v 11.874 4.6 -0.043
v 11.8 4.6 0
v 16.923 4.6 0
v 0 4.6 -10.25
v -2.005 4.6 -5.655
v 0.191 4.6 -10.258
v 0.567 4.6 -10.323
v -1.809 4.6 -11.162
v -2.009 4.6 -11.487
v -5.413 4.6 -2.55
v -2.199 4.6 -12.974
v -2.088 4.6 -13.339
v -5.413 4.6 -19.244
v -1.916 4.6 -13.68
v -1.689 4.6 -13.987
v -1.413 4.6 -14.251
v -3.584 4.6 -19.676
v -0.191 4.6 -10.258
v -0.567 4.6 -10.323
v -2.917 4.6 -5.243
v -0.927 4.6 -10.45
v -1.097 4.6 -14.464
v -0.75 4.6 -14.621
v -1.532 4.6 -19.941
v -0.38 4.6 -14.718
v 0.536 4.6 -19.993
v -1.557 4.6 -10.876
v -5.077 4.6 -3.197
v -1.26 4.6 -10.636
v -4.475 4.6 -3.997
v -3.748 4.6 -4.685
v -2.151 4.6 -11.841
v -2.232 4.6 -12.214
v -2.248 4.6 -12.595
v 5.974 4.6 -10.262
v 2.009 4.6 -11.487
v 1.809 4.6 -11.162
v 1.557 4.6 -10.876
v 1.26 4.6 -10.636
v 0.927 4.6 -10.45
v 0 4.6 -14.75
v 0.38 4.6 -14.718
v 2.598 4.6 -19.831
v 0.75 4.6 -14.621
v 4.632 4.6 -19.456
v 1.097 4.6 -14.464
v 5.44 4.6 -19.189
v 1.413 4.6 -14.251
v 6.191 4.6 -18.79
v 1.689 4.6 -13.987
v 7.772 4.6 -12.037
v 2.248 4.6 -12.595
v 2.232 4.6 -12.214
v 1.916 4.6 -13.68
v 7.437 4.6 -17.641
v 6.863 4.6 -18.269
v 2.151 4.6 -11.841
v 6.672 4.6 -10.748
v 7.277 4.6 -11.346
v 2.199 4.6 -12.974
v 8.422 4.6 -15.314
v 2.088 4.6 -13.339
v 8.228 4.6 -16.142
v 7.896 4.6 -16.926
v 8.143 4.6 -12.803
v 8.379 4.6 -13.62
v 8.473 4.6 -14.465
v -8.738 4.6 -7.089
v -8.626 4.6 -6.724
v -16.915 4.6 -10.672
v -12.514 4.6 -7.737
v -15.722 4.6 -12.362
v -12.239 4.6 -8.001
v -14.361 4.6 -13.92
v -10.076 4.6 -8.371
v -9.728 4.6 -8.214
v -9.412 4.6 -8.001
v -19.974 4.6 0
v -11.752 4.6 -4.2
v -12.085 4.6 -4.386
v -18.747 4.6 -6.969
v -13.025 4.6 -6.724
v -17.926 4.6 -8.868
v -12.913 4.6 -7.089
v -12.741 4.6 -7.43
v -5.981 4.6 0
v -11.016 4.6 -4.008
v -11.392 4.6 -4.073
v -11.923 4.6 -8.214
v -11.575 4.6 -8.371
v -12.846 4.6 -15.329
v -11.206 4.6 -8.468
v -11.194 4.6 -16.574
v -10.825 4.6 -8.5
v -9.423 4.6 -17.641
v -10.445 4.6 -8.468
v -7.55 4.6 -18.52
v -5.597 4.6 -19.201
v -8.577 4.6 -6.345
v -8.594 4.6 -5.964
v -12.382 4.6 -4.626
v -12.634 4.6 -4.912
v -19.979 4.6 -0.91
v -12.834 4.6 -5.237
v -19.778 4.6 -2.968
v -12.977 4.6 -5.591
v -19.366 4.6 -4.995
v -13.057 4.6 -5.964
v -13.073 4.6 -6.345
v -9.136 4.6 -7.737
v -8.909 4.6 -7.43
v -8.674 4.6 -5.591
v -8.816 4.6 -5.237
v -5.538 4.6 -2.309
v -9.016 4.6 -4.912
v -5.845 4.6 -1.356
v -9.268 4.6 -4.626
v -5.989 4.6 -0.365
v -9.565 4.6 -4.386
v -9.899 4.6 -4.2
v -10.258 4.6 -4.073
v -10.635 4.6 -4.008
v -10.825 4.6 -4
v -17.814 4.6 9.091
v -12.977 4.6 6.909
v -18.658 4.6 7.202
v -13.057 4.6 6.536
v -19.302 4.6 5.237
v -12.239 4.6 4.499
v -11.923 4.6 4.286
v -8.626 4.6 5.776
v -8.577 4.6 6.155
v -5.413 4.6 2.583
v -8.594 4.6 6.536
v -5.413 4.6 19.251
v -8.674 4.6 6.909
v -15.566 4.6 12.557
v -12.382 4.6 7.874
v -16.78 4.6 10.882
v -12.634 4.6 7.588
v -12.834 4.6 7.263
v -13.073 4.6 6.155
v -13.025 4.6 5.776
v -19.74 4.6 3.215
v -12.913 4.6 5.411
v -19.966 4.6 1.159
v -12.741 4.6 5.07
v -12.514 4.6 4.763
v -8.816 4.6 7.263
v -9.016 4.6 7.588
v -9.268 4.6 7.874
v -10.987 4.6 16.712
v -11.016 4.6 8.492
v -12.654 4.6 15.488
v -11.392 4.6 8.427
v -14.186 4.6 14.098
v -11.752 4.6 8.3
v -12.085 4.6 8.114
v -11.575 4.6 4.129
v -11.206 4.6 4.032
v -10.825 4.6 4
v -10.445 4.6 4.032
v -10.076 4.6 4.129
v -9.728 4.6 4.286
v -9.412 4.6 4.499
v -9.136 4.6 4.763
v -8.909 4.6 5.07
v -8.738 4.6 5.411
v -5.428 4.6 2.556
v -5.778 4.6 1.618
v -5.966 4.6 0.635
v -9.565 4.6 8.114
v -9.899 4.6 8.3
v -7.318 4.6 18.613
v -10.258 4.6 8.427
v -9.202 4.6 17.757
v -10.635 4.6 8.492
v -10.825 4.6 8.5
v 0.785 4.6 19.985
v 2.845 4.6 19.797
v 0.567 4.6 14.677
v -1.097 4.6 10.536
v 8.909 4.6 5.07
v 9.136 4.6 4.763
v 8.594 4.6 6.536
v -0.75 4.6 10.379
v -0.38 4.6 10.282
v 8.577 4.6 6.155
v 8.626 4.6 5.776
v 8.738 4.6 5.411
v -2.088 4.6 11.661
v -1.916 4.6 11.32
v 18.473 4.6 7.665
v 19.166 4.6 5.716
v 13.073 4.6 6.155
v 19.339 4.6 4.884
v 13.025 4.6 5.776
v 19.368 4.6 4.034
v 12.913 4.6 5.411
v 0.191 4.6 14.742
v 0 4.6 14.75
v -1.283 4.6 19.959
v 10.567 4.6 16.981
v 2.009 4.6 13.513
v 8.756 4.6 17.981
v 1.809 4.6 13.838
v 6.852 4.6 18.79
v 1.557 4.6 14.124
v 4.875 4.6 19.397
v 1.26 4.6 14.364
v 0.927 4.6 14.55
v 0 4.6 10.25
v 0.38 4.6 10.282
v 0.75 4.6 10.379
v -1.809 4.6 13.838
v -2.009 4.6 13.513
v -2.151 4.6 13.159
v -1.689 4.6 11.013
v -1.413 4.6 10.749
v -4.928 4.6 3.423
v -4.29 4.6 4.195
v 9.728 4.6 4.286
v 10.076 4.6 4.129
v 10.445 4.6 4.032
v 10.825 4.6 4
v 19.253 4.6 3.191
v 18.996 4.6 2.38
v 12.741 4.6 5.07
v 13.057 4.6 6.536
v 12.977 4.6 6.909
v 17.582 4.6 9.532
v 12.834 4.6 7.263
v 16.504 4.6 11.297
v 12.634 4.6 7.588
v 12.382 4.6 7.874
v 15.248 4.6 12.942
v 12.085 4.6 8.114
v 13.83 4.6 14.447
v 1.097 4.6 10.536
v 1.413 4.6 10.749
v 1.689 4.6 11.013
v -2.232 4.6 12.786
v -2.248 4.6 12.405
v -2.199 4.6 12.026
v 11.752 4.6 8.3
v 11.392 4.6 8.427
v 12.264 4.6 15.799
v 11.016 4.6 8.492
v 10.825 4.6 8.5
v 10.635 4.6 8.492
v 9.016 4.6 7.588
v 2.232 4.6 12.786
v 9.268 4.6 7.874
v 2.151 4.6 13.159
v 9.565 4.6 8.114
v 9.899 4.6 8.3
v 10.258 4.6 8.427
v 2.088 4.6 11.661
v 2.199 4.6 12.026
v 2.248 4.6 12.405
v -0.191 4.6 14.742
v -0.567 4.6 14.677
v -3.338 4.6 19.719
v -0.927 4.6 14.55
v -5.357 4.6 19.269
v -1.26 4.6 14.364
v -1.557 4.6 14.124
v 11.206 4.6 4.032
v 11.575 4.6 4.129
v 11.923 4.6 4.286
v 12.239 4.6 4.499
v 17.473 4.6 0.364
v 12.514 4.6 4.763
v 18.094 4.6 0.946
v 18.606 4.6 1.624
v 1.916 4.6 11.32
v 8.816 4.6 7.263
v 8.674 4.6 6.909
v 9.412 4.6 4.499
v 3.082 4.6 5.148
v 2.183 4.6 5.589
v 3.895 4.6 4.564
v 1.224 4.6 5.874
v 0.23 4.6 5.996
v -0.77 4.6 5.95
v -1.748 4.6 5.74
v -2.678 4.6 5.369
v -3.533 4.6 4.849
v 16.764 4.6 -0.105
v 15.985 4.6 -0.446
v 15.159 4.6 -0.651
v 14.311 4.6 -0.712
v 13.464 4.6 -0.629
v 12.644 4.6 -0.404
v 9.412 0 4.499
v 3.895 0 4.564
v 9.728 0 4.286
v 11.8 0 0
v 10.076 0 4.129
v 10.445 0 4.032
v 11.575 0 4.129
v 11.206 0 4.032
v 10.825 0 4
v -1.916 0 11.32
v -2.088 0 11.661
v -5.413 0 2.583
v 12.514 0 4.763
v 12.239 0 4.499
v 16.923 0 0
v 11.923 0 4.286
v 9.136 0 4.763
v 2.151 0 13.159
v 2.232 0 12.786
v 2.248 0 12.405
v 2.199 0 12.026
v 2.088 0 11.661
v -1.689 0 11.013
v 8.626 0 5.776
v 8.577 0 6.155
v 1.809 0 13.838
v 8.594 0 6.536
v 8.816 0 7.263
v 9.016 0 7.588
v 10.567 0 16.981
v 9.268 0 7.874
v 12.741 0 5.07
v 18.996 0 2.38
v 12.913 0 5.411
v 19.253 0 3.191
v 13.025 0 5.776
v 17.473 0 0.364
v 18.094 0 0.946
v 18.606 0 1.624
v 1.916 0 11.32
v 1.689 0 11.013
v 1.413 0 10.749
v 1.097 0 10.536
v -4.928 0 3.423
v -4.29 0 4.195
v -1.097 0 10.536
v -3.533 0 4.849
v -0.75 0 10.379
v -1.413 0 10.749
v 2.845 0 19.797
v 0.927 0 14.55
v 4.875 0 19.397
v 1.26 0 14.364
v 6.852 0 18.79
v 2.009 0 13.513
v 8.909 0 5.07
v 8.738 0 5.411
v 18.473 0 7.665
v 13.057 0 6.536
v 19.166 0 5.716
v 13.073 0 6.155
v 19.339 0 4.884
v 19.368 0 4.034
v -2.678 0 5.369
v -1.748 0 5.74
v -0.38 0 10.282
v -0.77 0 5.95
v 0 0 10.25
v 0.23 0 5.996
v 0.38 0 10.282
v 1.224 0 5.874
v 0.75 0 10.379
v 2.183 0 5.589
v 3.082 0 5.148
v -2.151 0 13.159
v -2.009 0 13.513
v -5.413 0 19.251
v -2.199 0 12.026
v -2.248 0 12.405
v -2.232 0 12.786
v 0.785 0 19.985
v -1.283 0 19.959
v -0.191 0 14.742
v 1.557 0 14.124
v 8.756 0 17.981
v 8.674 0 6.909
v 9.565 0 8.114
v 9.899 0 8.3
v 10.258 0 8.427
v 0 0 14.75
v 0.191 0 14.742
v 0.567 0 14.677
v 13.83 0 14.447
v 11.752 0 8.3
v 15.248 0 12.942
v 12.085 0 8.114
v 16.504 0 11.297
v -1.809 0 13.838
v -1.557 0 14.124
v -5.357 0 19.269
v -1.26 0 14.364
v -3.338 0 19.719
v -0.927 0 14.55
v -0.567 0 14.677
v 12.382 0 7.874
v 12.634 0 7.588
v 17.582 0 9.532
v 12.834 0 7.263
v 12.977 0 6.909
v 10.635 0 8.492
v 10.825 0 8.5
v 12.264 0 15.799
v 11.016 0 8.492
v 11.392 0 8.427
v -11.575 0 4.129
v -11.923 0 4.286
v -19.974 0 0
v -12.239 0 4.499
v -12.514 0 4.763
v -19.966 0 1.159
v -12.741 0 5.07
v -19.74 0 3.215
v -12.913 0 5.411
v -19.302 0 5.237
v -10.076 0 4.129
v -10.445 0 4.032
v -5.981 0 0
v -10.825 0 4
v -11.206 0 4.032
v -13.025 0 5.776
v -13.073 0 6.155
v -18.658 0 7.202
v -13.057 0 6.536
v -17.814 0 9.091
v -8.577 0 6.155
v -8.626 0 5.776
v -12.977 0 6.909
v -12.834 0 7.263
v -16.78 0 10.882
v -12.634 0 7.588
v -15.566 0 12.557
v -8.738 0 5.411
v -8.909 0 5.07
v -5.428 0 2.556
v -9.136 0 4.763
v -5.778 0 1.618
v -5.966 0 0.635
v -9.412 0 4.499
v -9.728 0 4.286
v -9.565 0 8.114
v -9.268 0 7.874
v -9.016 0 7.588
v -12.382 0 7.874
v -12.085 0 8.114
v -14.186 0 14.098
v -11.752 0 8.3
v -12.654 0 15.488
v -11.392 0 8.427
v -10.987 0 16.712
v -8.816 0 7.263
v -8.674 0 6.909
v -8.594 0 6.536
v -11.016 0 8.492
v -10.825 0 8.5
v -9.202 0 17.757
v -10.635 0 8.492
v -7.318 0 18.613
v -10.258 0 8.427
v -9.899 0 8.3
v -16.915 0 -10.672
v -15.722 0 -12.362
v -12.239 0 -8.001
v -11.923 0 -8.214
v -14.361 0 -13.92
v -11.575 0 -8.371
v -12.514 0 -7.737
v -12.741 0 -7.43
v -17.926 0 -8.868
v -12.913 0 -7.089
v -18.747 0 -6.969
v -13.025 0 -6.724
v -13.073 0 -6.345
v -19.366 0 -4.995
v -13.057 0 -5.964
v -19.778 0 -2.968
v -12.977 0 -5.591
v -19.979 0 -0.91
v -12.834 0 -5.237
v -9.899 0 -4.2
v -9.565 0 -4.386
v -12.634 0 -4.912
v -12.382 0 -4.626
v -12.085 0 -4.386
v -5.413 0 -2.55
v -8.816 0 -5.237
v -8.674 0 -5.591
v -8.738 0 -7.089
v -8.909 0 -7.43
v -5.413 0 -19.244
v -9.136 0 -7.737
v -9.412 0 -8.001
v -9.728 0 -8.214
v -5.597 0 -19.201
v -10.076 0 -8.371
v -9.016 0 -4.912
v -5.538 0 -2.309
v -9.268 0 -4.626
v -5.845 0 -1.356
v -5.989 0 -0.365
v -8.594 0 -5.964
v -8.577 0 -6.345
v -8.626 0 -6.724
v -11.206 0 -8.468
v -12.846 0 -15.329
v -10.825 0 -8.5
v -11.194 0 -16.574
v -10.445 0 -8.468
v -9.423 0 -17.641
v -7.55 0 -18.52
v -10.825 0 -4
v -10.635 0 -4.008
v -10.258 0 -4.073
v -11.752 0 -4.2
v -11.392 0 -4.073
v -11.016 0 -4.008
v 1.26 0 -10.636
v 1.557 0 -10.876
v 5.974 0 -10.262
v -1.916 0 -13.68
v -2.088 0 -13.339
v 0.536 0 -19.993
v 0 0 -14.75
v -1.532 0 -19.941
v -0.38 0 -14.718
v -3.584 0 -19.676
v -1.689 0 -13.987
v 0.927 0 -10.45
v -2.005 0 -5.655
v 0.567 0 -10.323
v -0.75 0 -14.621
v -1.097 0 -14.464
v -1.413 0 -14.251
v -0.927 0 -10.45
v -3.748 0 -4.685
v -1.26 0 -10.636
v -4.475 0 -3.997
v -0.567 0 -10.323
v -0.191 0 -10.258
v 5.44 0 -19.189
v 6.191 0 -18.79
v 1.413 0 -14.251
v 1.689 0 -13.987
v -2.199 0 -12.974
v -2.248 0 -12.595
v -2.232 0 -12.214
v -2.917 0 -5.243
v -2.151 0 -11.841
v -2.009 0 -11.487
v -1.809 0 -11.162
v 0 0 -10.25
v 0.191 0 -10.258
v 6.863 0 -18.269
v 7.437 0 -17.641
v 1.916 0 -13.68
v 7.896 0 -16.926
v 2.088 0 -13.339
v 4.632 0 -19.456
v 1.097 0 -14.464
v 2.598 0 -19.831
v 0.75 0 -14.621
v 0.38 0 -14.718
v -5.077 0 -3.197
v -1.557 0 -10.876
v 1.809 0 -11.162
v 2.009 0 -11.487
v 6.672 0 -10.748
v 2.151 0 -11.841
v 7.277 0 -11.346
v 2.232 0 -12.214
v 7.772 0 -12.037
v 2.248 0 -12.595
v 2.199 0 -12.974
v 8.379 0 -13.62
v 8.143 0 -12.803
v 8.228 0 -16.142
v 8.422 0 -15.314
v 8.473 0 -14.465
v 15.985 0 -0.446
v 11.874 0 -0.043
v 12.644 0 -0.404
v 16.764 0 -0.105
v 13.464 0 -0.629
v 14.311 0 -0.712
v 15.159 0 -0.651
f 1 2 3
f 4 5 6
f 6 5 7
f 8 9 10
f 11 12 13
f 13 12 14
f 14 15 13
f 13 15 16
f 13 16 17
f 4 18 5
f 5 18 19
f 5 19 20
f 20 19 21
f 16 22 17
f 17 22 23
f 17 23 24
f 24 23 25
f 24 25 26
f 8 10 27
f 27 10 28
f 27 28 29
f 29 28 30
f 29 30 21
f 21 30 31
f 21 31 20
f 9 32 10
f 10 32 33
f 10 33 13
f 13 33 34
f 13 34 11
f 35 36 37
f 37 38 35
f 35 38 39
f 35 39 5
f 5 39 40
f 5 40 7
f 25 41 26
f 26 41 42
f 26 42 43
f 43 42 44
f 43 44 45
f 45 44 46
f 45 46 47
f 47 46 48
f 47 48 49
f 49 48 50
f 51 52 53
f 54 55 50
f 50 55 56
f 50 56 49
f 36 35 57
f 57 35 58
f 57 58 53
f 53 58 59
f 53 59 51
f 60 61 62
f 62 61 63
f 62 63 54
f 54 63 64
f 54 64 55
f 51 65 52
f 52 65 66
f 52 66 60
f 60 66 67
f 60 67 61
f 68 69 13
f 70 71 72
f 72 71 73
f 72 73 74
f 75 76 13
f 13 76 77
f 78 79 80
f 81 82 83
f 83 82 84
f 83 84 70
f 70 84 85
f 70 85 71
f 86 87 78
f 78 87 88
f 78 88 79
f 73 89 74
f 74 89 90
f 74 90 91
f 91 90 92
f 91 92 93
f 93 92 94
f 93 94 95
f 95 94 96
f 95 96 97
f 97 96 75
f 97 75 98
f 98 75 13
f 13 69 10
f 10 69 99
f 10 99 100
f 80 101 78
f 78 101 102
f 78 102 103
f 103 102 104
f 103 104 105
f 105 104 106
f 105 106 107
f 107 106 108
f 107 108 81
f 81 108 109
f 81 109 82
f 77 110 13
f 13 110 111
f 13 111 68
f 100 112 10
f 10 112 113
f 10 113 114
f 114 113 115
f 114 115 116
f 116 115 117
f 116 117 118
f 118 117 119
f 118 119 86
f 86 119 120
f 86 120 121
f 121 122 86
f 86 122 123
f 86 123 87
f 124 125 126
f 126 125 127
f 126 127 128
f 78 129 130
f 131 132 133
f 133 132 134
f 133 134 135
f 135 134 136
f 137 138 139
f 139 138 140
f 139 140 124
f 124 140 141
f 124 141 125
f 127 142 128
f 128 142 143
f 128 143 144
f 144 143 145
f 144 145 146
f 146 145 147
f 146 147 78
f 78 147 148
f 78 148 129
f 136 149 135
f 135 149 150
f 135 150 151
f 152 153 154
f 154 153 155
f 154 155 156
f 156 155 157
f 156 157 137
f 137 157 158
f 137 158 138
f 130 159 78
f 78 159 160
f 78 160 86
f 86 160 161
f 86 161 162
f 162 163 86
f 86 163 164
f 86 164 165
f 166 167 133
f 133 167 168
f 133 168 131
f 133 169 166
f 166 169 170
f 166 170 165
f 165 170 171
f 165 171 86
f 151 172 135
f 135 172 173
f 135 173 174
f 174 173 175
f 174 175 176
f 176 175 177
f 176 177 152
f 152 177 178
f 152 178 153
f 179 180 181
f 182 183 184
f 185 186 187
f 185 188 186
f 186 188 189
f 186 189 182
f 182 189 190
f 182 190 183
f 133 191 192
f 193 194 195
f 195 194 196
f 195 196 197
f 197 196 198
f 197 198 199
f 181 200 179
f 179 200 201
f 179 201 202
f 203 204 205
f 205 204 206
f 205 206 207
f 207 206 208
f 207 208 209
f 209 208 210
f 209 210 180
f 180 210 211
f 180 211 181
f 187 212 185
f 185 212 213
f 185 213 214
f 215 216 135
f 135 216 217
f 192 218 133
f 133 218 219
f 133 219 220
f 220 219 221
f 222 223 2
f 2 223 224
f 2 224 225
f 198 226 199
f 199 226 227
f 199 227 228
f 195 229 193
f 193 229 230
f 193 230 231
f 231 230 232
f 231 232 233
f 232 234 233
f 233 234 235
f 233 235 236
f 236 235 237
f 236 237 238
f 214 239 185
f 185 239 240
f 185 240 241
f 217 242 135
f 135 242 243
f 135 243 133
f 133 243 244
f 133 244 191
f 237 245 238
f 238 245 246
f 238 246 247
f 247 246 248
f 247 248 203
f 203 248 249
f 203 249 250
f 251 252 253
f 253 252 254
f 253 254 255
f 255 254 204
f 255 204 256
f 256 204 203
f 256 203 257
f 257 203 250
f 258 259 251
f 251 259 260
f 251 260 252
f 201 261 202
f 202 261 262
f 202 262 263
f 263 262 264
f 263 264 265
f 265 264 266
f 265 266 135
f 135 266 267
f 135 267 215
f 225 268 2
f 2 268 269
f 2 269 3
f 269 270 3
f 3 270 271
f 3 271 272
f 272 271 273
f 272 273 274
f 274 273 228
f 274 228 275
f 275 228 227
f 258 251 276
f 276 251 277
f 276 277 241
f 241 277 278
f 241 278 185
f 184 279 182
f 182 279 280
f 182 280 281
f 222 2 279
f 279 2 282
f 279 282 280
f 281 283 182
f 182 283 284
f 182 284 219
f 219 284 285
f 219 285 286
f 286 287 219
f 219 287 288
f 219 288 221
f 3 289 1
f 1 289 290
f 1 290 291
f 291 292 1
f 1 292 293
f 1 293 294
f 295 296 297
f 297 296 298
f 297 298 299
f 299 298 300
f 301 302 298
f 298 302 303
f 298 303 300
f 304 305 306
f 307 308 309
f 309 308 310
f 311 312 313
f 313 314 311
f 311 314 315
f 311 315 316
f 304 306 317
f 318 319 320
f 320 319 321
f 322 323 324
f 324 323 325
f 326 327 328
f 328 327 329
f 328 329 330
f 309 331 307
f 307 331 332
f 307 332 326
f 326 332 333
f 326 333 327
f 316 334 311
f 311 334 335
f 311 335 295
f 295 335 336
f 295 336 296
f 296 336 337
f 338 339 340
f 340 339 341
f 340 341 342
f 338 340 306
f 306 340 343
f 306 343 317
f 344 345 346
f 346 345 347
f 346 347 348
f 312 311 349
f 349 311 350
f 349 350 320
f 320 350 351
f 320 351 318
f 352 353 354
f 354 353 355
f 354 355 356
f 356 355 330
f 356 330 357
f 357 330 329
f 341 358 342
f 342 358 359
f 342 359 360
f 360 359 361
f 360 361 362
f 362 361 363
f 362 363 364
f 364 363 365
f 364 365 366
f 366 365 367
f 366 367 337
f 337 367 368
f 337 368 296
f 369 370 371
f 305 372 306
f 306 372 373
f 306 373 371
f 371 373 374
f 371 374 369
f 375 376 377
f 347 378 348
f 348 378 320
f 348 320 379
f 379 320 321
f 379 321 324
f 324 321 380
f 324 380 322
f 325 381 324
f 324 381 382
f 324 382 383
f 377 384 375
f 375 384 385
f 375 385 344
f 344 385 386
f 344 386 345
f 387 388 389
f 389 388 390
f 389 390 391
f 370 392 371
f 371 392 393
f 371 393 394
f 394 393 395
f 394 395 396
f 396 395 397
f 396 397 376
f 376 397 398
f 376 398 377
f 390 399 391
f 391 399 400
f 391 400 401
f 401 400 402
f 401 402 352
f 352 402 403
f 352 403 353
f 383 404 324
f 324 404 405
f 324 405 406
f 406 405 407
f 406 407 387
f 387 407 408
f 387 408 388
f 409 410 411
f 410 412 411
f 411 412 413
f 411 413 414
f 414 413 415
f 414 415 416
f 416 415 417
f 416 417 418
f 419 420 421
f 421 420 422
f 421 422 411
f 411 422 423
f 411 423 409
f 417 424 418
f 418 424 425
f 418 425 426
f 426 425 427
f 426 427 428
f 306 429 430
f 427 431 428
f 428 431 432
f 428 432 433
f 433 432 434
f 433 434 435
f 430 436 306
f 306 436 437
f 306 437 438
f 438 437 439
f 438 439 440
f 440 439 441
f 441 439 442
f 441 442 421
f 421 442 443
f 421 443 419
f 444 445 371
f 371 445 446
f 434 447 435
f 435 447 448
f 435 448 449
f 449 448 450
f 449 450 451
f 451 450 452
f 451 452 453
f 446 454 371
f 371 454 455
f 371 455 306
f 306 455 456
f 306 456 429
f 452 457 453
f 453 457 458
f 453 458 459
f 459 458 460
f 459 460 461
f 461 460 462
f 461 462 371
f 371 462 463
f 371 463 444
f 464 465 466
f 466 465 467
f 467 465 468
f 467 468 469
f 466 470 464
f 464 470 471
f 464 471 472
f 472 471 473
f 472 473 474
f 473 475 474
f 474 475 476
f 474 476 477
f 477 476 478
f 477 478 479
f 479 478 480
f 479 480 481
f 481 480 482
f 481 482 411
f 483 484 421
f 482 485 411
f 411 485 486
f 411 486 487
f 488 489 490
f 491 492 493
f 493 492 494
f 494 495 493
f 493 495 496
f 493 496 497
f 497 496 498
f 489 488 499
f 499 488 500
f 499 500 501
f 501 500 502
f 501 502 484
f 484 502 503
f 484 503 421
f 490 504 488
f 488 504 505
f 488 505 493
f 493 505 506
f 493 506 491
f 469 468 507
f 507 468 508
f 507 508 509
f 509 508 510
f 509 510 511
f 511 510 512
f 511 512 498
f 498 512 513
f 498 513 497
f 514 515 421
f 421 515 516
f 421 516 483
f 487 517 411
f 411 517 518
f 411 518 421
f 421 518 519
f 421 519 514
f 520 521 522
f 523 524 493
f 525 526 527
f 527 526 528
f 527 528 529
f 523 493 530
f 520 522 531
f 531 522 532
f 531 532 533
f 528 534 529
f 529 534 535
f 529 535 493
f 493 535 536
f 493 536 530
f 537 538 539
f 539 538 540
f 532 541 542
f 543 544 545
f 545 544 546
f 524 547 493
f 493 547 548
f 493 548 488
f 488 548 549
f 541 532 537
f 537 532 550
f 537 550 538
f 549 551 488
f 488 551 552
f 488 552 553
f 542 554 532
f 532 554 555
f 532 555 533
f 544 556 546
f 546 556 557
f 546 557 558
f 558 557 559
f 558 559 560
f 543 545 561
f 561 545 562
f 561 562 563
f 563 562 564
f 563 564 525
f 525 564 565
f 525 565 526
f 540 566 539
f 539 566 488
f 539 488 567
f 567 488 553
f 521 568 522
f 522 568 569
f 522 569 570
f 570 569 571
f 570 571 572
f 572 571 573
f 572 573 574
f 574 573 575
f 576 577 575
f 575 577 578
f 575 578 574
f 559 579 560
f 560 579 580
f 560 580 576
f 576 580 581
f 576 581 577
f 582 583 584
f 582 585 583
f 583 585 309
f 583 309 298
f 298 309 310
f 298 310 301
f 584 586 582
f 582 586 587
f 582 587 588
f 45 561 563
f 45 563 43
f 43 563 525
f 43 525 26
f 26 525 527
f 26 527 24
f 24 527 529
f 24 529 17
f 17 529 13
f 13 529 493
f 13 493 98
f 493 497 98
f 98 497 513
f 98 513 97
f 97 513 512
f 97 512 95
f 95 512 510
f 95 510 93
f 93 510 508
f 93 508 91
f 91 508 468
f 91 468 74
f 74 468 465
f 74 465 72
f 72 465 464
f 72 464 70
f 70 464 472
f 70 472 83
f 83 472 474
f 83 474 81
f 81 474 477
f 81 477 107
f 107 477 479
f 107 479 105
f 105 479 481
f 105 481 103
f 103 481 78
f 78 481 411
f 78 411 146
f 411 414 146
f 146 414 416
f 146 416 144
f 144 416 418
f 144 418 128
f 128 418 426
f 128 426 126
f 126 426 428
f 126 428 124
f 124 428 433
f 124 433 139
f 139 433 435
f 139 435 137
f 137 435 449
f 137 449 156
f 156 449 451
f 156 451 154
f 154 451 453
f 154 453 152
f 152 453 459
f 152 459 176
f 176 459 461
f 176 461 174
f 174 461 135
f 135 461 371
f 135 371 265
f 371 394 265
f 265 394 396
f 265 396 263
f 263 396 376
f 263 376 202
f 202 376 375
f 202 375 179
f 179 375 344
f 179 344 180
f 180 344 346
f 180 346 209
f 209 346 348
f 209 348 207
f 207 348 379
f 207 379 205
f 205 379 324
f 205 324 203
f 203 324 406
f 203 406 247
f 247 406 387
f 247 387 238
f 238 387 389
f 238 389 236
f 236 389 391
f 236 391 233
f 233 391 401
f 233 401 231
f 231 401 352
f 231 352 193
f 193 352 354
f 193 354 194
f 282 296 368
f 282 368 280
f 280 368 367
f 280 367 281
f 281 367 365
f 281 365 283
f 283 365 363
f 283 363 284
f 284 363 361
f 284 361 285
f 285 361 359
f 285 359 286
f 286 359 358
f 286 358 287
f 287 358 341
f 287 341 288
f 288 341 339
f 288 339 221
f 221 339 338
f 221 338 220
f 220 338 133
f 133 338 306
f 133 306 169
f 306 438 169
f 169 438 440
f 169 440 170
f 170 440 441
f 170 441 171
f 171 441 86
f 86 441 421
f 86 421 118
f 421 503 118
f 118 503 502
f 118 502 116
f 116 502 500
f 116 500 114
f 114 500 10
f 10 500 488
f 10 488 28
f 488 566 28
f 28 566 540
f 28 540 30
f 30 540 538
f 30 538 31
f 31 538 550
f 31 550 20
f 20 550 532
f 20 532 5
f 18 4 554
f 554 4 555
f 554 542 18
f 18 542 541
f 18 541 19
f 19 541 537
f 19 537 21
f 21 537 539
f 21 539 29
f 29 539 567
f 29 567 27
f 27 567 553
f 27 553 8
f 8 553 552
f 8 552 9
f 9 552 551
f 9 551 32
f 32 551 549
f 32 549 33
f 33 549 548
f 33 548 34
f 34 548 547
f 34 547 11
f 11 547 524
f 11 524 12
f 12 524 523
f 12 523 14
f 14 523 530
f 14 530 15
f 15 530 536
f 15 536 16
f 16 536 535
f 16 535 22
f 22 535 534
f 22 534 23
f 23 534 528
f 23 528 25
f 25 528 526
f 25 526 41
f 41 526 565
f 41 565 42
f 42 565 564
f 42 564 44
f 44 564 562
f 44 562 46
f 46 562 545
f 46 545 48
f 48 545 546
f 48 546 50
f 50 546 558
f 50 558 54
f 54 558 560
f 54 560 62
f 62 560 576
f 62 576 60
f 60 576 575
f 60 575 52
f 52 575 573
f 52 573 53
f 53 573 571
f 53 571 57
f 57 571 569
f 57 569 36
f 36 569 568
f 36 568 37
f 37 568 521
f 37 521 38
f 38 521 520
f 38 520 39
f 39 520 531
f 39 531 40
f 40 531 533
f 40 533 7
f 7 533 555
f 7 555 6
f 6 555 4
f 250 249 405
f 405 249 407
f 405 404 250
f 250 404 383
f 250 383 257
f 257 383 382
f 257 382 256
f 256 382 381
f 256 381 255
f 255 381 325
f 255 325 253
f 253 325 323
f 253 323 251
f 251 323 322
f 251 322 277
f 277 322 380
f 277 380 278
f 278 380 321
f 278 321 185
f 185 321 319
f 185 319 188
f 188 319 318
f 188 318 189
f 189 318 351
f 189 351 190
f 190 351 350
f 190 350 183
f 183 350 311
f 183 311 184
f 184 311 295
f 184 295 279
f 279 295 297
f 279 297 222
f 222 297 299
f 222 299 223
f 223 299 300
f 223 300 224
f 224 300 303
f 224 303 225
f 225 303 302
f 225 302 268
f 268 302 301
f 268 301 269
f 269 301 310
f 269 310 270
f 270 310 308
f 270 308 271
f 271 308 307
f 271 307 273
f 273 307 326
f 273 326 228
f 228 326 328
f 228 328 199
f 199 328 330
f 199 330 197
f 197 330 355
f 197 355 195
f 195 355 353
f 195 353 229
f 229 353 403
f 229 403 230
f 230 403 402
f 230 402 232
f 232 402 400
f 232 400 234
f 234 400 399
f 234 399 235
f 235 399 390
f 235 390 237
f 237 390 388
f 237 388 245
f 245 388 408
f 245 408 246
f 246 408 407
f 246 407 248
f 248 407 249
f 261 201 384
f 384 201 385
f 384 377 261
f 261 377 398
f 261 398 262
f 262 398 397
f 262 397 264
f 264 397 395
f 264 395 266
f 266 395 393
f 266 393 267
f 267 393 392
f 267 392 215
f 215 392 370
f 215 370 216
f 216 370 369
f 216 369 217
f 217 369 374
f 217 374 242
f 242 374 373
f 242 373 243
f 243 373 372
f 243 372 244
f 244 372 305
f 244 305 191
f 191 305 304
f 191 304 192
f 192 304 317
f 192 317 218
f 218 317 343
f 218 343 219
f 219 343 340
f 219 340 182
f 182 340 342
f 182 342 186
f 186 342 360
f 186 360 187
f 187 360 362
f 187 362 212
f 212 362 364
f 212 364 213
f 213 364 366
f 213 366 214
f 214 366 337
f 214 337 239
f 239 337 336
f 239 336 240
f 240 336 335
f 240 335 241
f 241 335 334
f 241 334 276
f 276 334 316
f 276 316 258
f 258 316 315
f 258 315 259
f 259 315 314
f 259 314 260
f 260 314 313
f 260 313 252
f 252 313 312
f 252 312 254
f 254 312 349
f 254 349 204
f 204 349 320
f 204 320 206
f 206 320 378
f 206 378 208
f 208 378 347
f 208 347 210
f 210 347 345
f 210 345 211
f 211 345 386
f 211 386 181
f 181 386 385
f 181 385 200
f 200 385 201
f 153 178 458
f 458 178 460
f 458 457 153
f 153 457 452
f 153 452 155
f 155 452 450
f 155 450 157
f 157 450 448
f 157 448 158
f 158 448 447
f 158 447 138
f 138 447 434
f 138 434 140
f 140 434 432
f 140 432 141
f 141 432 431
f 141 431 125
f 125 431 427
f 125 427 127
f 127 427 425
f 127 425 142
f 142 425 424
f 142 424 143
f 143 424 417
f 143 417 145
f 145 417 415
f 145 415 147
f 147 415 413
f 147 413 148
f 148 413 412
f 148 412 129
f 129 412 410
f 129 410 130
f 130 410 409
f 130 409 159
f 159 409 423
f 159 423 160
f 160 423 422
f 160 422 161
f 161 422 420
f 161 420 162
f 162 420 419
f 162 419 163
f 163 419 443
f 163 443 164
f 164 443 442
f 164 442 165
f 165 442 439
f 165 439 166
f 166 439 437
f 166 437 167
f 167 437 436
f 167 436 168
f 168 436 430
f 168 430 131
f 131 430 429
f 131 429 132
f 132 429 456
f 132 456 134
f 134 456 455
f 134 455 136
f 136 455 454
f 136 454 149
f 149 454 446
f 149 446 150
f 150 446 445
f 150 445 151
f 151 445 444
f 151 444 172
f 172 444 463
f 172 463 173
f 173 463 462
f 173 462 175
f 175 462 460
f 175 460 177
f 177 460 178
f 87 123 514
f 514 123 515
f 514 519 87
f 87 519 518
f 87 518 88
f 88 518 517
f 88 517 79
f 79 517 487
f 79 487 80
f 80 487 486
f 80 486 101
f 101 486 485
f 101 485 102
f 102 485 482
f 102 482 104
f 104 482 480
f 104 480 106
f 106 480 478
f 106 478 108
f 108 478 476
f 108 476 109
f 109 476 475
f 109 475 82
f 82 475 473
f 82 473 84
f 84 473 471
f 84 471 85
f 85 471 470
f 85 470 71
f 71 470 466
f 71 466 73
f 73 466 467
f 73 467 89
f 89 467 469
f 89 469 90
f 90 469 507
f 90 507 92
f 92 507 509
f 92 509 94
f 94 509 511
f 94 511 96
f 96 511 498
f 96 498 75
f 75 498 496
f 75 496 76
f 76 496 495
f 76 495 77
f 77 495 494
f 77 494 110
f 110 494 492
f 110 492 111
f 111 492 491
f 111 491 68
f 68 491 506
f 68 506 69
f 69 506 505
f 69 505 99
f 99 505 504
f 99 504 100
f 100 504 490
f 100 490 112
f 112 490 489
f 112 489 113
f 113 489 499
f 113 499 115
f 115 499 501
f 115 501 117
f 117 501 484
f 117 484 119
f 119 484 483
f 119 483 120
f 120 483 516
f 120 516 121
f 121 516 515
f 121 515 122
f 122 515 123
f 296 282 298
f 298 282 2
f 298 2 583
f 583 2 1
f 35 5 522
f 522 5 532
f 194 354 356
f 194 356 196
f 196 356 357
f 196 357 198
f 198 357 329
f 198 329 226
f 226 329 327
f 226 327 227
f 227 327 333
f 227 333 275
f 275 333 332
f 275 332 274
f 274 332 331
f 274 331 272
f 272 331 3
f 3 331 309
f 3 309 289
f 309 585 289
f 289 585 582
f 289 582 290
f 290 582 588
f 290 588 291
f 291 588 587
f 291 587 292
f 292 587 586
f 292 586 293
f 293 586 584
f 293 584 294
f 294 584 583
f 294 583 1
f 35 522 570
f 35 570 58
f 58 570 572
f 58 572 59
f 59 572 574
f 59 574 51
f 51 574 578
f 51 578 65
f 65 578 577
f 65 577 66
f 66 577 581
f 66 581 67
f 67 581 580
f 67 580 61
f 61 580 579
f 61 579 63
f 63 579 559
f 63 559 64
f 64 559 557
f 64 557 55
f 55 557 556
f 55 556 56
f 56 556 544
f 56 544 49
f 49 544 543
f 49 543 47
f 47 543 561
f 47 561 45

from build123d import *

# Parameters (mm, degrees)
SKETCH1_R               = 20
SKETCH1_R_2             = 6
SKETCH1_R_3             = 2.25
BOSS_EXTRUDE1_DEPTH     = 4.6
CUT_EXTRUDE1_DEPTH      = 29.655889447
CUT_EXTRUDE1_DEPTH_BACK = 29.655889447
SKETCH2_R               = 2.25
FILLET2_R               = 5


with BuildPart() as part:
    # Sketch1 → Boss-Extrude1 (new body)
    with BuildSketch(Plane(origin=(0, 0, 0), x_dir=(1, 0, 0), z_dir=(0, 1, 0))):
        with Locations(Location((0, 0, 0), (0, 0, 270))):
            Circle(SKETCH1_R)
        with Locations(Location((0, 0, 0), (0, 0, 270))):
            Circle(SKETCH1_R_2, mode=Mode.SUBTRACT)
        with Locations(Location((0, 12.5, 0), (0, 0, 270))):
            Circle(SKETCH1_R_3, mode=Mode.SUBTRACT)
        with Locations(Location((10.825317547, 6.25, 0), (0, 0, 270))):
            Circle(SKETCH1_R_3, mode=Mode.SUBTRACT)
        with Locations(Location((10.825317547, -6.25, 0), (0, 0, 270))):
            Circle(SKETCH1_R_3, mode=Mode.SUBTRACT)
        with Locations(Location((0, -12.5, 0), (0, 0, 270))):
            Circle(SKETCH1_R_3, mode=Mode.SUBTRACT)
        with Locations(Location((-10.825317547, -6.25, 0), (0, 0, 270))):
            Circle(SKETCH1_R_3, mode=Mode.SUBTRACT)
        with Locations(Location((-10.825317547, 6.25, 0), (0, 0, 270))):
            Circle(SKETCH1_R_3, mode=Mode.SUBTRACT)
    extrude(amount=BOSS_EXTRUDE1_DEPTH)

    # Sketch2 → Cut-Extrude1 (cut, two sides: drawn at the far end of the back side and taken through both)
    with BuildSketch(Plane(origin=(0, 4.6, 0), x_dir=(1, 0, 0), z_dir=(0, 1, 0)).offset(-CUT_EXTRUDE1_DEPTH_BACK)):
        with BuildLine():
            Line((13.599697882, 14.66452241), (-2.005277819, 5.654985488))
            ThreePointArc((-2.005277819, 5.654985488), (3.461815498, 4.900595214), (6, 0))
            ThreePointArc((6, 0), (5.448317772, -2.5131322), (3.894722181, -4.564114277))
            Line((3.894722181, -4.564114277), (19.499697882, 4.445422645))
            ThreePointArc((19.499697882, 4.445422645), (17.320508076, 10), (13.599697882, 14.66452241))
        make_face()
        with Locations((10.825317547, 6.25)):
            Circle(SKETCH2_R, mode=Mode.SUBTRACT)
    extrude(amount=CUT_EXTRUDE1_DEPTH + CUT_EXTRUDE1_DEPTH_BACK, mode=Mode.SUBTRACT)

    # Fillet2
    fillet2_edges = [part.edges().sort_by_distance(p)[0] for p in [
        (19.499697882, 2.3, -4.445422645),
        (13.599697882, 2.3, -14.66452241),
    ]]
    fillet(fillet2_edges, radius=FILLET2_R)


solid = part.part
